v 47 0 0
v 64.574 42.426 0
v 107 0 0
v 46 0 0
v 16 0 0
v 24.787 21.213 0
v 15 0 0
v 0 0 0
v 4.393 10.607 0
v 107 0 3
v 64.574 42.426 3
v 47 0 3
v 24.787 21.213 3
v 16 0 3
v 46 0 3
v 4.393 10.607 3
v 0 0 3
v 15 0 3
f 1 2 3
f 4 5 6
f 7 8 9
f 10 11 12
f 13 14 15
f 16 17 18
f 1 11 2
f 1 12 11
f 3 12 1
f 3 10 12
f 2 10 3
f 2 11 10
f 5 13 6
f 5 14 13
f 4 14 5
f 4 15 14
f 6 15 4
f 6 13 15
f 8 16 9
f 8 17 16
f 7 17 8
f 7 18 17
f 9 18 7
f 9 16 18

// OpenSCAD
// File TriangleSolver.scad
// (c) Rich Cameron 2020, licensed CC-BY 
// All dimensions mm 

thick = 3; //How thick the triangle is in the 3rd dimension

trianglebase = 30; //Make this larger if scaleset triangles overlap. 
// Should be equal to the base side of the triangle.

// Four options for specifying triangle are
// side-side-side (sides in mm)
//sss(10, 10, 10); 
// side-angle-side (sides in mm, angle in degrees)
//sas(10, 60, 10);
// angle-side-angle(side in mm, angles in degrees)
//asa(60, 10, 60);
// side-angle-angle(side in mm, angles in degrees)
//saa(10, 60, 60);
// First side dimension given is used as the base

// the next line uses side-side-side to create three scaled triangles.
// Parameters in scaled brackets are the scaling factor 
// from the original triangle
// replace "sas" with one of the above alternatives if desired
// If you give it a geometrically-impossible set of parameters it will
// do nothing

thicken() scaleset(trianglebase, [.5, 1, 2]) sas(30, 45, 30); 
		
module thicken() if(thick) linear_extrude(thick) children();
	else children();

module scaleset(base, sizes = [1, 2]) for(i = [0:len(sizes) - 1]) translate([base * sum(sizes, i - 1) + i, 0, 0]) scale([sizes[i], sizes[i], 1]) children();
	
function sum(v, i) = (i >= 0) ? v[i] + sum(v, i-1) : 0;


module triangle(angleA = 0, sideB = 0, angleC = 0, sideA = 0, angleB = 0, sideC = 0) {
	if(((angleA ? 1 : 0) + (sideB ? 1 : 0) + (angleC ? 1 : 0) + (sideA ? 1 : 0) + (angleB ? 1 : 0) + (sideC ? 1 : 0)) > 3) 
		echo(str("Triangle with ",
			angleA ? str("angleA = " , angleA, ", ") : "",
			sideB ? str("sideB = " , sideB, ", ") : "",
			angleC ? str("angleC = " , angleC, ", ") : "",
			sideA ? str("sideA = " , sideA, ", ") : "",
			angleB ? str("angleB = " , angleB, ", ") : "",
			sideC ? str("sideC = " , sideC, ", ") : "",
			"is over-constrained."
		));
	
	else if(((angleA ? 1 : 0) + (sideB ? 1 : 0) + (angleC ? 1 : 0) + (sideA ? 1 : 0) + (angleB ? 1 : 0) + (sideC ? 1 : 0)) < 3) 
		echo(str("Triangle with ",
			angleA ? str("angleA = " , angleA, ", ") : "",
			sideB ? str("sideB = " , sideB, ", ") : "",
			angleC ? str("angleC = " , angleC, ", ") : "",
			sideA ? str("sideA = " , sideA, ", ") : "",
			angleB ? str("angleB = " , angleB, ", ") : "",
			sideC ? str("sideC = " , sideC, ", ") : "",
			"is under-constrained."
		));
	
	else if(!angleA && sideB && !angleC && sideA && !angleB && sideC) sss(sideA, sideB, sideC);
	
	else if(angleA && sideB && angleC && !sideA && !angleB && !sideC) asa(angleA, sideB, angleC);
	else if(!angleA && !sideB && angleC && sideA && angleB && !sideC) asa(angleC, sideA, angleB);
	else if(angleA && !sideB && !angleC && !sideA && angleB && sideC) asa(angleB, sideC, angleA);
	
	else if(!angleA && sideB && angleC && sideA && !angleB && !sideC) sas(sideB, angleC, sideA);
	else if(!angleA && !sideB && !angleC && sideA && angleB && sideC) sas(sideA, angleB, sideC);
	else if(angleA && sideB && !angleC && !sideA && !angleB && sideC) sas(sideC, angleA, sideB);
	
	else if(!angleA && sideB && angleC && !sideA && angleB && !sideC) saa(sideB, angleC, angleB);
	else if(angleA && !sideB && !angleC && sideA && angleB && !sideC) saa(sideA, angleB, angleA);
	else if(angleA && !sideB && angleC && !sideA && !angleB && sideC) saa(sideC, angleA, angleC);
		
	else if(!angleA && !sideB && angleC && !sideA && angleB && sideC)
		translate([sideC, 0, 0]) mirror([1, 0, 0]) saa(sideC, angleC, angleB);
	else if(angleA && sideB && !angleC && !sideA && angleB && !sideC)
		translate([sideB, 0, 0]) mirror([1, 0, 0]) saa(sideB, angleB, angleA);
	else if(angleA && !sideB && angleC && AsideA && !angleB && !sideC)
		translate([sideA, 0, 0]) mirror([1, 0, 0]) saa(sideA, angleA, angleC);
	
	else echo(str("Triangle with ",
			angleA ? str("angleA = " , angleA, ", ") : "",
			sideB ? str("sideB = " , sideB, ", ") : "",
			angleC ? str("angleC = " , angleC, ", ") : "",
			sideA ? str("sideA = " , sideA, ", ") : "",
			angleB ? str("angleB = " , angleB, ", ") : "",
			sideC ? str("sideC = " , sideC, ", ") : "",
		"is not properly constrained."
	));
}

module sss(sideB, sideA, sideC) {
	polygon([
		[0, 0],
		[sideB, 0],
		[
			sideB - (((pow(sideA, 2) + pow(sideB, 2) - pow(sideC, 2)) / 2 / sideA / sideB)) * sideA,
			sin(acos((pow(sideA, 2) + pow(sideB, 2) - pow(sideC, 2)) / 2 / sideA / sideB)) * sideA
		]
	]);
	echo(str(
		"angles: ", 
		acos((pow(sideB, 2) + pow(sideC, 2) - pow(sideA, 2)) / 2 / sideB / sideC),
		", ", 
		acos((pow(sideA, 2) + pow(sideC, 2) - pow(sideB, 2)) / 2 / sideA / sideC),
		", ", 
		acos((pow(sideA, 2) + pow(sideB, 2) - pow(sideC, 2)) / 2 / sideA / sideB)
	));
	echo(str(
		"sides: ",
		sideA,
		", ",
		sideB,
		", ",
		sideC
	));
}

module sas(sideB, angleC, sideA) {
	polygon([
		[0, 0],
		[sideB, 0],
		[
			sideB - cos(angleC) * sideA,
			sin(angleC) * sideA
		]
	]);
	echo(str(
		"angles: ", 
		asin(sin(angleC) * sideA / sqrt(pow(sideA, 2) + pow(sideB, 2) - 2 * sideA * sideB * cos(angleC))),
		", ", 
		asin(sin(angleC) * sideB / sqrt(pow(sideA, 2) + pow(sideB, 2) - 2 * sideA * sideB * cos(angleC))),
		", ", 
		angleC
	));
	echo(str(
		"sides: ",
		sideA,
		", ",
		sideB,
		", ",
		sqrt(pow(sideA, 2) + pow(sideB, 2) - 2 * sideA * sideB * cos(angleC))
	));
}

module asa(angleA, sideB, angleC) {
	polygon([
		[0, 0],
		[sideB, 0],
		[
			sideB - cos(angleC) * sideB * sin(angleA) / sin(180 - angleA - angleC),
			sin(angleC) * sideB * sin(angleA) / sin(180 - angleA - angleC),
		]
	]);
	echo(str(
		"angles: ",
		angleA, 
		", ", 
		180 - angleA - angleC, 
		", ", 
		angleC
	));
	echo(str(
		"sides: ",
		sideB * sin(angleA) / sin(180 - angleA - angleC),
		", ",
		sideB,
		", ",
		sideB * sin(angleC) / sin(180 - angleA - angleC)
	));
}

module saa(sideB, angleC, angleB) {
	polygon([
		[0, 0],
		[sideB, 0],
		[
			sideB - cos(angleC) * sideB * sin(180 - angleC - angleB) / sin(angleB),
			sin(angleC) * sideB * sin(180 - angleC - angleB) / sin(angleB),
		]
	]);
	echo(str(
		"angles: ",
		180 - angleC - angleB,
		", ",
		angleB,
		", ",
		angleC
	));
	echo(str(
		"sides: ",
		sideB * sin(180 - angleC - angleB) / sin(angleB),
		", ",
		sideB,
		", ",
		sideB * sin(angleC) / sin(angleB)
	));
}
